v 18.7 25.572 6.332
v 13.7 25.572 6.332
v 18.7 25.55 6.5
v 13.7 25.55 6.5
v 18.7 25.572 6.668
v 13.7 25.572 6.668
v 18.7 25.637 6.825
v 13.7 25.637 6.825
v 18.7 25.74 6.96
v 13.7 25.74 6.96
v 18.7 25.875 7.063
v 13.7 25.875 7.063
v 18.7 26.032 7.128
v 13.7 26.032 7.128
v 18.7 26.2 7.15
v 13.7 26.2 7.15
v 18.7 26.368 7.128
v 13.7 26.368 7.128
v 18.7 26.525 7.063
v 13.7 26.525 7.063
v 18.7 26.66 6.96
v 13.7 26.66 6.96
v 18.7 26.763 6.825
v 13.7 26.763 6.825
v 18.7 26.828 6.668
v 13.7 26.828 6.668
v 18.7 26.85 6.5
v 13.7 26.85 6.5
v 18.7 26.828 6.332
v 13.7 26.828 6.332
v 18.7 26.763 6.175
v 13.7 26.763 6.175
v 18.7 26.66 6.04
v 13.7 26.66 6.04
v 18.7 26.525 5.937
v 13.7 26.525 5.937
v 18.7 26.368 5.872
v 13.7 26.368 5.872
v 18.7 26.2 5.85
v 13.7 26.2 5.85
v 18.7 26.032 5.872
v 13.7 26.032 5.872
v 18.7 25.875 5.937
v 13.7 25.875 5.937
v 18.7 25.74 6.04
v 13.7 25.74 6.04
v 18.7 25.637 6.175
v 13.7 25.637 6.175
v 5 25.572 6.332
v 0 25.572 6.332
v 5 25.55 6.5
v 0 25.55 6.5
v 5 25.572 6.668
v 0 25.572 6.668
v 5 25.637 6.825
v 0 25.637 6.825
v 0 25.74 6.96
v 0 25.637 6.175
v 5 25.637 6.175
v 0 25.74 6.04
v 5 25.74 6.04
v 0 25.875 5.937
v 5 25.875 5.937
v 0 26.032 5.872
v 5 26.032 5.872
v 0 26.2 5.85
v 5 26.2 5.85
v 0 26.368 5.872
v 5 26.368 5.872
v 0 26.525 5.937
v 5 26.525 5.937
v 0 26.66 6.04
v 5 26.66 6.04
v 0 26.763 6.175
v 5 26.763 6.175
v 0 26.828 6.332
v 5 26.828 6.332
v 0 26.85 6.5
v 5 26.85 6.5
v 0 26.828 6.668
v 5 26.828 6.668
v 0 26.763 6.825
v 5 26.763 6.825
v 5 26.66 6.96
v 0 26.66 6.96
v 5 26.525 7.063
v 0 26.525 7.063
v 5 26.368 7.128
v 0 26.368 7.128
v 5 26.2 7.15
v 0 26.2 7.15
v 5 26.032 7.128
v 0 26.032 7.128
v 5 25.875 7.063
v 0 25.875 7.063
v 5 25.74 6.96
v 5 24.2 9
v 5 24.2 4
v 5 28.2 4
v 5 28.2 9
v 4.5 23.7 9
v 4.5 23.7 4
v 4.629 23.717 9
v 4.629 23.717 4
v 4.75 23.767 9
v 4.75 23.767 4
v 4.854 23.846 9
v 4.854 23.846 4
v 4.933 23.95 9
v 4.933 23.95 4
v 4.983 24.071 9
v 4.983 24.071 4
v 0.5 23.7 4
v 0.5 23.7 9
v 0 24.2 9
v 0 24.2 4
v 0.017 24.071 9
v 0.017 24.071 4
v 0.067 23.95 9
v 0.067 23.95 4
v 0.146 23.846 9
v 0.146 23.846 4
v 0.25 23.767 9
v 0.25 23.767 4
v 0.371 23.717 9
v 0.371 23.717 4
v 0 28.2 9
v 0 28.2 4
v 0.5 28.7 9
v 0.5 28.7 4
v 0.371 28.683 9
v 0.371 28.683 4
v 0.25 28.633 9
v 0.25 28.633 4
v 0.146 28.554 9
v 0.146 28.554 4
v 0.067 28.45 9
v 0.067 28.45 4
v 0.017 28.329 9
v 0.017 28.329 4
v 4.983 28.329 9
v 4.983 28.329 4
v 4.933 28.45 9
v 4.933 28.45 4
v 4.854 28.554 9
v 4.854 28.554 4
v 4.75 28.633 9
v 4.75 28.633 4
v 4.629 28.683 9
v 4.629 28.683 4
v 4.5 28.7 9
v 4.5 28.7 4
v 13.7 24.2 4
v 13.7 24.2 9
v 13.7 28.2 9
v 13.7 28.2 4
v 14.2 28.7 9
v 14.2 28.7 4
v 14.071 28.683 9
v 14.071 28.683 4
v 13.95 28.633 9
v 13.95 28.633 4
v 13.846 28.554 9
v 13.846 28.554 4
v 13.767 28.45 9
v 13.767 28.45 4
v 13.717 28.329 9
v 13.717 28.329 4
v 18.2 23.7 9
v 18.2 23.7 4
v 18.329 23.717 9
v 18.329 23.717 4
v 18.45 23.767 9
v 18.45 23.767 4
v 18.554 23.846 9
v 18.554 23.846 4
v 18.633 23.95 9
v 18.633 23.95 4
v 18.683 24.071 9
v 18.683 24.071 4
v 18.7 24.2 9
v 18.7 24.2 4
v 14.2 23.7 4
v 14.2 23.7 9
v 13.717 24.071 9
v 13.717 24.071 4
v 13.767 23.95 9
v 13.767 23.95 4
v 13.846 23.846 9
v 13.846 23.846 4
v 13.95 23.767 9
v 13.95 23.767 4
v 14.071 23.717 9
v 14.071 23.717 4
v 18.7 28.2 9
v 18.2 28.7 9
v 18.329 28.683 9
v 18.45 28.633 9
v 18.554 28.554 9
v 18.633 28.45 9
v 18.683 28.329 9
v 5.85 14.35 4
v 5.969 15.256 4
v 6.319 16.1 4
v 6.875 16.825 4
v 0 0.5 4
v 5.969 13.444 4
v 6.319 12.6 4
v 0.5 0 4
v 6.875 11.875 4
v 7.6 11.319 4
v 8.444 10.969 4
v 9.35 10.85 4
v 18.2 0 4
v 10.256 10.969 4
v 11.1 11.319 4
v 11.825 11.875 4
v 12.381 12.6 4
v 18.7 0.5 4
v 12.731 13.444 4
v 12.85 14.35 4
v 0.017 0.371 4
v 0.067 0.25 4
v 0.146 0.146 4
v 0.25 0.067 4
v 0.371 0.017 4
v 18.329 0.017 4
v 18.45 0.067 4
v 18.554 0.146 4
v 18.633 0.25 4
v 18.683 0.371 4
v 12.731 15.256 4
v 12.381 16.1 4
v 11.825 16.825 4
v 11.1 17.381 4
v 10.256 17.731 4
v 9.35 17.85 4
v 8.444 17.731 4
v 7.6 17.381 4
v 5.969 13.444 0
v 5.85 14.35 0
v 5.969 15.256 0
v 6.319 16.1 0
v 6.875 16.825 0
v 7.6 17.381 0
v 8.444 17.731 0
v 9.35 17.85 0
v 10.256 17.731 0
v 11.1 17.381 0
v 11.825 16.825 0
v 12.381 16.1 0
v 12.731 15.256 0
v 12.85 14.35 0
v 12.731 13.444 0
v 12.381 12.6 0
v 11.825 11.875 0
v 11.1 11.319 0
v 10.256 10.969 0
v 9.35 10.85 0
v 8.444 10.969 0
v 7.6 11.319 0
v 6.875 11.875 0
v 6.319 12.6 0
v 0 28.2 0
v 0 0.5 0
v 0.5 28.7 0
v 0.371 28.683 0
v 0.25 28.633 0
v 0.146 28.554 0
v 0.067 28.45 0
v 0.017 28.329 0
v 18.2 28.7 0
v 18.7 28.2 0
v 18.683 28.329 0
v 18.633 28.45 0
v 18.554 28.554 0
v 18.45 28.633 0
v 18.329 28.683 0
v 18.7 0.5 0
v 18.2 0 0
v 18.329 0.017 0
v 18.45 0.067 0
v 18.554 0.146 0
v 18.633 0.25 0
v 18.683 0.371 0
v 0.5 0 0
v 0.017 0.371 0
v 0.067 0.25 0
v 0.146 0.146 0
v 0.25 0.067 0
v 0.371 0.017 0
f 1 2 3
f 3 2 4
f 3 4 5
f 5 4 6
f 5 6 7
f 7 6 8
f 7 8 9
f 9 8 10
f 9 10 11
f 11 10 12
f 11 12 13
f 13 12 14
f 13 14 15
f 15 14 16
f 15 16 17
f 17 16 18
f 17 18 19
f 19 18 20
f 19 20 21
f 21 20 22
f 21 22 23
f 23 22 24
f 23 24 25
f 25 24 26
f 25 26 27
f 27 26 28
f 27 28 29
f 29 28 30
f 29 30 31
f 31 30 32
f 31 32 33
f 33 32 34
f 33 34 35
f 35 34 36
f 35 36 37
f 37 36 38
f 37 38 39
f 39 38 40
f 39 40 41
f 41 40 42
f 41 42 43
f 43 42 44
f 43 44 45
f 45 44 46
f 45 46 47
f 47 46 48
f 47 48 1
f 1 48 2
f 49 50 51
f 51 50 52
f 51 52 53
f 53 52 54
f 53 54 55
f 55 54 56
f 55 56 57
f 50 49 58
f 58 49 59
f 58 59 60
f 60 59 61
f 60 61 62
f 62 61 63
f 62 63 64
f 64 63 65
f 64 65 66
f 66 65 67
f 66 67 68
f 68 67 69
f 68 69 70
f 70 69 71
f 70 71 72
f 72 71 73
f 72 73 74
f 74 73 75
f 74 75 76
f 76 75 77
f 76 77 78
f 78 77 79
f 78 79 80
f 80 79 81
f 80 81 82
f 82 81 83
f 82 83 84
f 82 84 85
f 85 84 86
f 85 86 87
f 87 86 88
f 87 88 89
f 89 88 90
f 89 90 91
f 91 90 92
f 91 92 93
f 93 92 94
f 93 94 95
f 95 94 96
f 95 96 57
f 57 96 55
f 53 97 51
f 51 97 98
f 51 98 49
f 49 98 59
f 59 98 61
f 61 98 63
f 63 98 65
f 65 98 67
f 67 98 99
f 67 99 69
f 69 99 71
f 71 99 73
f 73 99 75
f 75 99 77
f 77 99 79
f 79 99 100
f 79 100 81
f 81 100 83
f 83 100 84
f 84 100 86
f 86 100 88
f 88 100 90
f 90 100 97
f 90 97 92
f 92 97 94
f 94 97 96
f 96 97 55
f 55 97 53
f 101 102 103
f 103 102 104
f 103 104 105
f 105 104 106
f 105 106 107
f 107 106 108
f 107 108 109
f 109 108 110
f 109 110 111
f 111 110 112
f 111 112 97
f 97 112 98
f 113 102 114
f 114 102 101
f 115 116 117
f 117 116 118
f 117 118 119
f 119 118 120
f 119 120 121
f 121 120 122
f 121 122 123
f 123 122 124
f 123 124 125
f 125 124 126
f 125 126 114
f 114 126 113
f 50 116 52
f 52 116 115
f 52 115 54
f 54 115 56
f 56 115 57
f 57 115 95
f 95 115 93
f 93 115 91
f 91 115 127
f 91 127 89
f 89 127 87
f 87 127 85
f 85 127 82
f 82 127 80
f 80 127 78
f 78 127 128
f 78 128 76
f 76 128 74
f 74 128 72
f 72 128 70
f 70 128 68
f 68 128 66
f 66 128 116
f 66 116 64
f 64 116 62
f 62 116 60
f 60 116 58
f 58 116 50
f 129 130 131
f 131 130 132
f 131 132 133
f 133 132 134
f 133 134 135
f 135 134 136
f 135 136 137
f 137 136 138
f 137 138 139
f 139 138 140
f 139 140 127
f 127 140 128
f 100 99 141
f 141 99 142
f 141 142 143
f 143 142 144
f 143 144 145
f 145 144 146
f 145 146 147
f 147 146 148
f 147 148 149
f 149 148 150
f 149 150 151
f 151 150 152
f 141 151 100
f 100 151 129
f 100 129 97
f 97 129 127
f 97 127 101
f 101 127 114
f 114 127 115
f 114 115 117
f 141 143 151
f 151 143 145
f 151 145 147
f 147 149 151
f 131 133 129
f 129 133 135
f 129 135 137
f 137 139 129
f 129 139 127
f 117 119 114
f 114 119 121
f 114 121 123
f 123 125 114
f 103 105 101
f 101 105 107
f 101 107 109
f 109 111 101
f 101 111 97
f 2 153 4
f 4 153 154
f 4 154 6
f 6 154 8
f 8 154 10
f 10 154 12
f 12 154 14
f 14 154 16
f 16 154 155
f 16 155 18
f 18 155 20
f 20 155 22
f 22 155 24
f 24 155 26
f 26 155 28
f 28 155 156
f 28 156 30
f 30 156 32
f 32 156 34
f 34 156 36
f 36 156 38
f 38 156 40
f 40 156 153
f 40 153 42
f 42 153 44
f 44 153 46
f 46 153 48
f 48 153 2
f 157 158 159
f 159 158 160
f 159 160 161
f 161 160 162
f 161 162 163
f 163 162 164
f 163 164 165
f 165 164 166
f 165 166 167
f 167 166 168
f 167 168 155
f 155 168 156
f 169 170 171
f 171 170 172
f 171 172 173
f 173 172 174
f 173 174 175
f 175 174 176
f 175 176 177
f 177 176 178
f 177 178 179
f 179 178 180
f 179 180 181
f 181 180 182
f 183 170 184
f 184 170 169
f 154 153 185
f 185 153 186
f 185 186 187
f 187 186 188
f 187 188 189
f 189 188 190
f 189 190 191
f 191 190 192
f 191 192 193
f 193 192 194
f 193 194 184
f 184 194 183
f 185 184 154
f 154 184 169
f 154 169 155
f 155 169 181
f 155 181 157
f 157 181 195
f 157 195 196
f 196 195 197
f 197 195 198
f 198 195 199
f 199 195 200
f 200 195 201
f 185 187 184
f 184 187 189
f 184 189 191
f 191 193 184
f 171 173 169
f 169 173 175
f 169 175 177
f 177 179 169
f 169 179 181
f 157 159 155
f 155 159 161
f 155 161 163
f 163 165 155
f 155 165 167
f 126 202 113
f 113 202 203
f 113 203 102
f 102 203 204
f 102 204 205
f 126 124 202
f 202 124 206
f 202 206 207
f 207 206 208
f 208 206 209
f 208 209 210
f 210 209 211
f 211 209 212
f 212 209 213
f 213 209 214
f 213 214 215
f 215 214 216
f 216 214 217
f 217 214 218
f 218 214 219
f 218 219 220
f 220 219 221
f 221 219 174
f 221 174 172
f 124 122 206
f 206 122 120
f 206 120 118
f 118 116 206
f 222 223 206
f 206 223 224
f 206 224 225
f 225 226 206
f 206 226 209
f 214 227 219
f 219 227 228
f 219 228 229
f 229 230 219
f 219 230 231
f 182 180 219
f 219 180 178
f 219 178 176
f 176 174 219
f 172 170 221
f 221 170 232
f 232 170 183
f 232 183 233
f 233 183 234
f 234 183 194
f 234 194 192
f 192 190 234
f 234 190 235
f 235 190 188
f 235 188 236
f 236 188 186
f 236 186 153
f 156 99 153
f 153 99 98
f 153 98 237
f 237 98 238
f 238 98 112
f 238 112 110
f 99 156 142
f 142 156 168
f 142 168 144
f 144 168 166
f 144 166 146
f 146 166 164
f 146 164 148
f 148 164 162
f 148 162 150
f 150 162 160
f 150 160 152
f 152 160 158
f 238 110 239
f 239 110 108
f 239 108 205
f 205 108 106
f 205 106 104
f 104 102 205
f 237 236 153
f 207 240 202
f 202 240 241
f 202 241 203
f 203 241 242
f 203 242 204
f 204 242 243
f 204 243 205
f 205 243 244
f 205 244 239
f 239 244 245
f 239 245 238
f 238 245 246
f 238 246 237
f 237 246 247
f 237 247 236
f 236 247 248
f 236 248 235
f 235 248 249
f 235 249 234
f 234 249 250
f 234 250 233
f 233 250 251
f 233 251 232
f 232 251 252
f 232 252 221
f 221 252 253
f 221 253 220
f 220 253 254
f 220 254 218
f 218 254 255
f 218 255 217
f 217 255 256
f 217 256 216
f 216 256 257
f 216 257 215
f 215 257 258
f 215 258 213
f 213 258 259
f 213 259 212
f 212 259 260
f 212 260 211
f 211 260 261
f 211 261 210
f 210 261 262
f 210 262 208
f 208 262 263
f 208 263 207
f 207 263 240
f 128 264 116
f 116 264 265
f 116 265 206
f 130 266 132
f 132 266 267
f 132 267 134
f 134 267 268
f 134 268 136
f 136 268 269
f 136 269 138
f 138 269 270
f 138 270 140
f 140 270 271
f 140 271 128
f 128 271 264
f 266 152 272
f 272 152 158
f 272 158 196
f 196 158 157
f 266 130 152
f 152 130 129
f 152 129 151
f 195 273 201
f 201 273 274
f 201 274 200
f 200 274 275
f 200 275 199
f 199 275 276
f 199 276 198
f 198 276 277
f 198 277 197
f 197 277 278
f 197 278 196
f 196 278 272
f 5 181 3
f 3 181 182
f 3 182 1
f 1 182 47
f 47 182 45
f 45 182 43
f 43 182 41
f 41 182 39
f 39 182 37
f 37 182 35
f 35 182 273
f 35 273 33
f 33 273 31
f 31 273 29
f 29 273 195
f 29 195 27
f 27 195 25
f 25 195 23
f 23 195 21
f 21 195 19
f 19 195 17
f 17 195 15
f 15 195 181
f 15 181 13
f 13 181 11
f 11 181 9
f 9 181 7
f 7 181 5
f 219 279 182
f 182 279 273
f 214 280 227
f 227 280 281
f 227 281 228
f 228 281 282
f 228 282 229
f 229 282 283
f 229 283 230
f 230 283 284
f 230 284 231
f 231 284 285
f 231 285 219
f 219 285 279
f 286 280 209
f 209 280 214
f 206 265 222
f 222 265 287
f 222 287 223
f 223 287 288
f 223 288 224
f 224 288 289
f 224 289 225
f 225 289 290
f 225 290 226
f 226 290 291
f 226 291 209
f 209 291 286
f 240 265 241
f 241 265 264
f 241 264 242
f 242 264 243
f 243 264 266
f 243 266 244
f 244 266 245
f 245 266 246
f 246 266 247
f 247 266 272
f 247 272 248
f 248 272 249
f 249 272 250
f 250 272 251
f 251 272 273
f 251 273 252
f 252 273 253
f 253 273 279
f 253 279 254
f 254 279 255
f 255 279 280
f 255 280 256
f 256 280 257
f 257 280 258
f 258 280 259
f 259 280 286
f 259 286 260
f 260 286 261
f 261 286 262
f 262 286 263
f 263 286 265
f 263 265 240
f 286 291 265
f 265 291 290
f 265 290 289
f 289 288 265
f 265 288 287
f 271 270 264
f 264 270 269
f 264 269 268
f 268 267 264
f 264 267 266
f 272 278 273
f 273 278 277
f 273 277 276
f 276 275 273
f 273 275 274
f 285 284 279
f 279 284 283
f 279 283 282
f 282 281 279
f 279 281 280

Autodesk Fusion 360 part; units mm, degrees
sketch "Sketch1" plane through (0, 0, 0) normal (0, 0, 1) x (1, 0, 0)
  line L0 (0.5, 0) -> (18.2, 0)
  line L1 (18.7, 0.5) -> (18.7, 28.2)
  line L2 (18.2, 28.7) -> (0.5, 28.7)
  line L3 (0, 28.2) -> (0, 0.5)
  line L4 (18.7, 28.7) -> (0, 0) construction
  line L5 (0, 28.7) -> (18.7, 0) construction
  arc A0 (0.5, 28.7) -> (0, 28.2) centre (0.5, 28.2) ccw
  arc A1 (18.7, 28.2) -> (18.2, 28.7) centre (18.2, 28.2) ccw
  arc A2 (18.2, 0) -> (18.7, 0.5) centre (18.2, 0.5) ccw
  arc A3 (0, 0.5) -> (0.5, 0) centre (0.5, 0.5) ccw
  circle A4 centre (9.35, 14.35) radius 3.5
  dimension "d1" = 18.7
  dimension "d2" = 28.7
  dimension "d3" = 0.5
  dimension "d4" = 0.5
  dimension "d5" = 0.5
  dimension "d6" = 0.5
  dimension "d7" = 7
extrude "Extrude1" add sketch "Sketch1" along normal blind 4
sketch "Sketch2" plane through (0, 0, 4) normal (0, 0, 1) x (-1, 0, 0)
  circle A0 centre (-9.35, -14.35) radius 3.5
  arc A1 (0, -0.5) -> (-0.5, 0) centre (-0.5, -0.5) ccw
  line L0 (-0.5, 0) -> (-18.2, 0)
  arc A2 (-18.2, 0) -> (-18.7, -0.5) centre (-18.2, -0.5) ccw
  line L1 (-18.7, -0.5) -> (-18.7, -28.2)
  arc A3 (-18.7, -28.2) -> (-18.2, -28.7) centre (-18.2, -28.2) ccw
  line L2 (-18.2, -28.7) -> (-0.5, -28.7)
  arc A4 (-0.5, -28.7) -> (0, -28.2) centre (-0.5, -28.2) ccw
  line L3 (0, -28.2) -> (0, -0.5)
  line L4 (-9.35, -23.7) -> (-18.2, -23.7) construction
  line L5 (-9.35, -23.7) -> (0, -23.7) construction
  line L6 (-18.7, -23.7) -> (-14.2, -23.7)
  line L7 (-0.5, -23.7) -> (-4.5, -23.7)
  line L8 (-5, -24.2) -> (-5, -28.2)
  line L9 (-13.7, -24.2) -> (-13.7, -28.2)
  line L10 (-14.2, -28.7) -> (-18.2, -28.7)
  line L11 (-18.7, -28.2) -> (-18.7, -24.2)
  line L12 (-4.5, -28.7) -> (-0.5, -28.7)
  line L13 (0, -28.2) -> (0, -24.2)
  arc A5 (-0.5, -28.7) -> (0, -28.2) centre (-0.5, -28.2) ccw
  arc A6 (-18.7, -28.2) -> (-18.2, -28.7) centre (-18.2, -28.2) ccw
  arc A7 (-4.5, -23.7) -> (-5, -24.2) centre (-4.5, -24.2) ccw
  arc A8 (0, -24.2) -> (-0.5, -23.7) centre (-0.5, -24.2) ccw
  arc A9 (-5, -28.2) -> (-4.5, -28.7) centre (-4.5, -28.2) ccw
  arc A10 (-14.2, -28.7) -> (-13.7, -28.2) centre (-14.2, -28.2) ccw
  arc A11 (-13.7, -24.2) -> (-14.2, -23.7) centre (-14.2, -24.2) ccw
  arc A12 (-18.2, -23.7) -> (-18.7, -24.2) centre (-18.2, -24.2) ccw
  point P0 (-5, -28.7)
  point P1 (-13.7, -28.7)
  point P2 (-18.7, -28.7)
  point P3 (0, -28.7)
  dimension "d12" = 5
  dimension "d13" = 5
  dimension "d14" = 0.5
  dimension "d15" = 0.5
  dimension "d16" = 0.5
  dimension "d17" = 0.5
  dimension "d18" = 0.5
  dimension "d19" = 0.5
  dimension "d20" = 0.5
  dimension "d21" = 0.5
extrude "Extrude2" add sketch "Sketch2" along normal blind 5 contours L2 A4 L3 L7 L8 L12 L13 A5 A7 A8 A9 | L1 A3 L2 L6 L9 L10 L11 A6 A10 A11 A12
sketch "Sketch3" plane through (18.7, 0, 0) normal (1, 0, 0) x (0, 1, 0)
  line L0 (0.5, 0) -> (28.2, 0)
  line L1 (28.2, 0) -> (28.2, 9)
  line L2 (28.2, 9) -> (24.2, 9)
  line L3 (24.2, 9) -> (24.2, 4)
  line L4 (24.2, 4) -> (0.5, 4)
  line L5 (0.5, 4) -> (0.5, 0)
  line L6 (24.2, 9) -> (24.2, 4) construction
  line L7 (24.2, 4) -> (28.2, 4) construction
  line L8 (24.2, 9) -> (28.2, 4) construction
  line L9 (24.2, 4) -> (28.2, 9) construction
  circle A0 centre (26.2, 6.5) radius 0.65
  dimension "d24" = 1.3
extrude "Extrude3" cut sketch "Sketch3" against normal blind 20 contours A0
